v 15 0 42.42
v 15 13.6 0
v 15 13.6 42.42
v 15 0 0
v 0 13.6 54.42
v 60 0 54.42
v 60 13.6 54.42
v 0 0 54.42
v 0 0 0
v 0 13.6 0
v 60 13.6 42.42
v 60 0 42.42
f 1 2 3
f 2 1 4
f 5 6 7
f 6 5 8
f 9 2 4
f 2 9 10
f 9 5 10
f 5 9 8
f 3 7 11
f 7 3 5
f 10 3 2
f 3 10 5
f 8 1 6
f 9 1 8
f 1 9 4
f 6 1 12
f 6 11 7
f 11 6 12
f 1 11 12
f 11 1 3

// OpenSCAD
/* doodle-meta {"version":1,"parameters":{"width":{"label":"Overall width","description":"Changes the overall width of the L-hook","unit":"mm","feature":"body_width"},"height":{"label":"Overall height","description":"Changes the overall height of the L-hook","unit":"mm","feature":"body_height"},"depth":{"label":"Thickness","description":"Changes the thickness (depth) of the L-hook","unit":"mm","feature":"body_depth"},"backplate_width":{"label":"Backplate width","description":"Changes the width of the vertical backplate","unit":"mm","feature":"backplate_width"},"hook_thickness":{"label":"Hook thickness","description":"Changes the vertical thickness of the horizontal hook arm","unit":"mm","feature":"hook_thickness"}},"features":{"body_width":{"kind":"dimension","axis":"x","label":"Overall width"},"body_height":{"kind":"dimension","axis":"z","label":"Overall height"},"body_depth":{"kind":"dimension","axis":"y","label":"Thickness"},"backplate_width":{"kind":"region","label":"Backplate width","min":[0,0,0],"max":[{"parameter":"backplate_width","scale":1,"offset":0},{"parameter":"depth","scale":1,"offset":0},{"parameter":"height","scale":1,"offset":0}]},"hook_thickness":{"kind":"region","label":"Hook thickness","min":[{"parameter":"backplate_width","scale":1,"offset":0},0,{"parameter":"height","scale":1,"offset":0},{"parameter":"hook_thickness","scale":-1,"offset":0}],"max":[{"parameter":"width","scale":1,"offset":0},{"parameter":"depth","scale":1,"offset":0},{"parameter":"height","scale":1,"offset":0}]}}} */

// Overall dimensions
width = 60.0;
height = 54.42;
depth = 13.6;

// Local dimensions
backplate_width = 15.0;
hook_thickness = 12.0;

module l_hook() {
    // Vertical backplate
    cube([backplate_width, depth, height]);
    
    // Horizontal hook arm
    translate([backplate_width, 0, height - hook_thickness])
        cube([width - backplate_width, depth, hook_thickness]);
}

// Instantiate the design
l_hook();
